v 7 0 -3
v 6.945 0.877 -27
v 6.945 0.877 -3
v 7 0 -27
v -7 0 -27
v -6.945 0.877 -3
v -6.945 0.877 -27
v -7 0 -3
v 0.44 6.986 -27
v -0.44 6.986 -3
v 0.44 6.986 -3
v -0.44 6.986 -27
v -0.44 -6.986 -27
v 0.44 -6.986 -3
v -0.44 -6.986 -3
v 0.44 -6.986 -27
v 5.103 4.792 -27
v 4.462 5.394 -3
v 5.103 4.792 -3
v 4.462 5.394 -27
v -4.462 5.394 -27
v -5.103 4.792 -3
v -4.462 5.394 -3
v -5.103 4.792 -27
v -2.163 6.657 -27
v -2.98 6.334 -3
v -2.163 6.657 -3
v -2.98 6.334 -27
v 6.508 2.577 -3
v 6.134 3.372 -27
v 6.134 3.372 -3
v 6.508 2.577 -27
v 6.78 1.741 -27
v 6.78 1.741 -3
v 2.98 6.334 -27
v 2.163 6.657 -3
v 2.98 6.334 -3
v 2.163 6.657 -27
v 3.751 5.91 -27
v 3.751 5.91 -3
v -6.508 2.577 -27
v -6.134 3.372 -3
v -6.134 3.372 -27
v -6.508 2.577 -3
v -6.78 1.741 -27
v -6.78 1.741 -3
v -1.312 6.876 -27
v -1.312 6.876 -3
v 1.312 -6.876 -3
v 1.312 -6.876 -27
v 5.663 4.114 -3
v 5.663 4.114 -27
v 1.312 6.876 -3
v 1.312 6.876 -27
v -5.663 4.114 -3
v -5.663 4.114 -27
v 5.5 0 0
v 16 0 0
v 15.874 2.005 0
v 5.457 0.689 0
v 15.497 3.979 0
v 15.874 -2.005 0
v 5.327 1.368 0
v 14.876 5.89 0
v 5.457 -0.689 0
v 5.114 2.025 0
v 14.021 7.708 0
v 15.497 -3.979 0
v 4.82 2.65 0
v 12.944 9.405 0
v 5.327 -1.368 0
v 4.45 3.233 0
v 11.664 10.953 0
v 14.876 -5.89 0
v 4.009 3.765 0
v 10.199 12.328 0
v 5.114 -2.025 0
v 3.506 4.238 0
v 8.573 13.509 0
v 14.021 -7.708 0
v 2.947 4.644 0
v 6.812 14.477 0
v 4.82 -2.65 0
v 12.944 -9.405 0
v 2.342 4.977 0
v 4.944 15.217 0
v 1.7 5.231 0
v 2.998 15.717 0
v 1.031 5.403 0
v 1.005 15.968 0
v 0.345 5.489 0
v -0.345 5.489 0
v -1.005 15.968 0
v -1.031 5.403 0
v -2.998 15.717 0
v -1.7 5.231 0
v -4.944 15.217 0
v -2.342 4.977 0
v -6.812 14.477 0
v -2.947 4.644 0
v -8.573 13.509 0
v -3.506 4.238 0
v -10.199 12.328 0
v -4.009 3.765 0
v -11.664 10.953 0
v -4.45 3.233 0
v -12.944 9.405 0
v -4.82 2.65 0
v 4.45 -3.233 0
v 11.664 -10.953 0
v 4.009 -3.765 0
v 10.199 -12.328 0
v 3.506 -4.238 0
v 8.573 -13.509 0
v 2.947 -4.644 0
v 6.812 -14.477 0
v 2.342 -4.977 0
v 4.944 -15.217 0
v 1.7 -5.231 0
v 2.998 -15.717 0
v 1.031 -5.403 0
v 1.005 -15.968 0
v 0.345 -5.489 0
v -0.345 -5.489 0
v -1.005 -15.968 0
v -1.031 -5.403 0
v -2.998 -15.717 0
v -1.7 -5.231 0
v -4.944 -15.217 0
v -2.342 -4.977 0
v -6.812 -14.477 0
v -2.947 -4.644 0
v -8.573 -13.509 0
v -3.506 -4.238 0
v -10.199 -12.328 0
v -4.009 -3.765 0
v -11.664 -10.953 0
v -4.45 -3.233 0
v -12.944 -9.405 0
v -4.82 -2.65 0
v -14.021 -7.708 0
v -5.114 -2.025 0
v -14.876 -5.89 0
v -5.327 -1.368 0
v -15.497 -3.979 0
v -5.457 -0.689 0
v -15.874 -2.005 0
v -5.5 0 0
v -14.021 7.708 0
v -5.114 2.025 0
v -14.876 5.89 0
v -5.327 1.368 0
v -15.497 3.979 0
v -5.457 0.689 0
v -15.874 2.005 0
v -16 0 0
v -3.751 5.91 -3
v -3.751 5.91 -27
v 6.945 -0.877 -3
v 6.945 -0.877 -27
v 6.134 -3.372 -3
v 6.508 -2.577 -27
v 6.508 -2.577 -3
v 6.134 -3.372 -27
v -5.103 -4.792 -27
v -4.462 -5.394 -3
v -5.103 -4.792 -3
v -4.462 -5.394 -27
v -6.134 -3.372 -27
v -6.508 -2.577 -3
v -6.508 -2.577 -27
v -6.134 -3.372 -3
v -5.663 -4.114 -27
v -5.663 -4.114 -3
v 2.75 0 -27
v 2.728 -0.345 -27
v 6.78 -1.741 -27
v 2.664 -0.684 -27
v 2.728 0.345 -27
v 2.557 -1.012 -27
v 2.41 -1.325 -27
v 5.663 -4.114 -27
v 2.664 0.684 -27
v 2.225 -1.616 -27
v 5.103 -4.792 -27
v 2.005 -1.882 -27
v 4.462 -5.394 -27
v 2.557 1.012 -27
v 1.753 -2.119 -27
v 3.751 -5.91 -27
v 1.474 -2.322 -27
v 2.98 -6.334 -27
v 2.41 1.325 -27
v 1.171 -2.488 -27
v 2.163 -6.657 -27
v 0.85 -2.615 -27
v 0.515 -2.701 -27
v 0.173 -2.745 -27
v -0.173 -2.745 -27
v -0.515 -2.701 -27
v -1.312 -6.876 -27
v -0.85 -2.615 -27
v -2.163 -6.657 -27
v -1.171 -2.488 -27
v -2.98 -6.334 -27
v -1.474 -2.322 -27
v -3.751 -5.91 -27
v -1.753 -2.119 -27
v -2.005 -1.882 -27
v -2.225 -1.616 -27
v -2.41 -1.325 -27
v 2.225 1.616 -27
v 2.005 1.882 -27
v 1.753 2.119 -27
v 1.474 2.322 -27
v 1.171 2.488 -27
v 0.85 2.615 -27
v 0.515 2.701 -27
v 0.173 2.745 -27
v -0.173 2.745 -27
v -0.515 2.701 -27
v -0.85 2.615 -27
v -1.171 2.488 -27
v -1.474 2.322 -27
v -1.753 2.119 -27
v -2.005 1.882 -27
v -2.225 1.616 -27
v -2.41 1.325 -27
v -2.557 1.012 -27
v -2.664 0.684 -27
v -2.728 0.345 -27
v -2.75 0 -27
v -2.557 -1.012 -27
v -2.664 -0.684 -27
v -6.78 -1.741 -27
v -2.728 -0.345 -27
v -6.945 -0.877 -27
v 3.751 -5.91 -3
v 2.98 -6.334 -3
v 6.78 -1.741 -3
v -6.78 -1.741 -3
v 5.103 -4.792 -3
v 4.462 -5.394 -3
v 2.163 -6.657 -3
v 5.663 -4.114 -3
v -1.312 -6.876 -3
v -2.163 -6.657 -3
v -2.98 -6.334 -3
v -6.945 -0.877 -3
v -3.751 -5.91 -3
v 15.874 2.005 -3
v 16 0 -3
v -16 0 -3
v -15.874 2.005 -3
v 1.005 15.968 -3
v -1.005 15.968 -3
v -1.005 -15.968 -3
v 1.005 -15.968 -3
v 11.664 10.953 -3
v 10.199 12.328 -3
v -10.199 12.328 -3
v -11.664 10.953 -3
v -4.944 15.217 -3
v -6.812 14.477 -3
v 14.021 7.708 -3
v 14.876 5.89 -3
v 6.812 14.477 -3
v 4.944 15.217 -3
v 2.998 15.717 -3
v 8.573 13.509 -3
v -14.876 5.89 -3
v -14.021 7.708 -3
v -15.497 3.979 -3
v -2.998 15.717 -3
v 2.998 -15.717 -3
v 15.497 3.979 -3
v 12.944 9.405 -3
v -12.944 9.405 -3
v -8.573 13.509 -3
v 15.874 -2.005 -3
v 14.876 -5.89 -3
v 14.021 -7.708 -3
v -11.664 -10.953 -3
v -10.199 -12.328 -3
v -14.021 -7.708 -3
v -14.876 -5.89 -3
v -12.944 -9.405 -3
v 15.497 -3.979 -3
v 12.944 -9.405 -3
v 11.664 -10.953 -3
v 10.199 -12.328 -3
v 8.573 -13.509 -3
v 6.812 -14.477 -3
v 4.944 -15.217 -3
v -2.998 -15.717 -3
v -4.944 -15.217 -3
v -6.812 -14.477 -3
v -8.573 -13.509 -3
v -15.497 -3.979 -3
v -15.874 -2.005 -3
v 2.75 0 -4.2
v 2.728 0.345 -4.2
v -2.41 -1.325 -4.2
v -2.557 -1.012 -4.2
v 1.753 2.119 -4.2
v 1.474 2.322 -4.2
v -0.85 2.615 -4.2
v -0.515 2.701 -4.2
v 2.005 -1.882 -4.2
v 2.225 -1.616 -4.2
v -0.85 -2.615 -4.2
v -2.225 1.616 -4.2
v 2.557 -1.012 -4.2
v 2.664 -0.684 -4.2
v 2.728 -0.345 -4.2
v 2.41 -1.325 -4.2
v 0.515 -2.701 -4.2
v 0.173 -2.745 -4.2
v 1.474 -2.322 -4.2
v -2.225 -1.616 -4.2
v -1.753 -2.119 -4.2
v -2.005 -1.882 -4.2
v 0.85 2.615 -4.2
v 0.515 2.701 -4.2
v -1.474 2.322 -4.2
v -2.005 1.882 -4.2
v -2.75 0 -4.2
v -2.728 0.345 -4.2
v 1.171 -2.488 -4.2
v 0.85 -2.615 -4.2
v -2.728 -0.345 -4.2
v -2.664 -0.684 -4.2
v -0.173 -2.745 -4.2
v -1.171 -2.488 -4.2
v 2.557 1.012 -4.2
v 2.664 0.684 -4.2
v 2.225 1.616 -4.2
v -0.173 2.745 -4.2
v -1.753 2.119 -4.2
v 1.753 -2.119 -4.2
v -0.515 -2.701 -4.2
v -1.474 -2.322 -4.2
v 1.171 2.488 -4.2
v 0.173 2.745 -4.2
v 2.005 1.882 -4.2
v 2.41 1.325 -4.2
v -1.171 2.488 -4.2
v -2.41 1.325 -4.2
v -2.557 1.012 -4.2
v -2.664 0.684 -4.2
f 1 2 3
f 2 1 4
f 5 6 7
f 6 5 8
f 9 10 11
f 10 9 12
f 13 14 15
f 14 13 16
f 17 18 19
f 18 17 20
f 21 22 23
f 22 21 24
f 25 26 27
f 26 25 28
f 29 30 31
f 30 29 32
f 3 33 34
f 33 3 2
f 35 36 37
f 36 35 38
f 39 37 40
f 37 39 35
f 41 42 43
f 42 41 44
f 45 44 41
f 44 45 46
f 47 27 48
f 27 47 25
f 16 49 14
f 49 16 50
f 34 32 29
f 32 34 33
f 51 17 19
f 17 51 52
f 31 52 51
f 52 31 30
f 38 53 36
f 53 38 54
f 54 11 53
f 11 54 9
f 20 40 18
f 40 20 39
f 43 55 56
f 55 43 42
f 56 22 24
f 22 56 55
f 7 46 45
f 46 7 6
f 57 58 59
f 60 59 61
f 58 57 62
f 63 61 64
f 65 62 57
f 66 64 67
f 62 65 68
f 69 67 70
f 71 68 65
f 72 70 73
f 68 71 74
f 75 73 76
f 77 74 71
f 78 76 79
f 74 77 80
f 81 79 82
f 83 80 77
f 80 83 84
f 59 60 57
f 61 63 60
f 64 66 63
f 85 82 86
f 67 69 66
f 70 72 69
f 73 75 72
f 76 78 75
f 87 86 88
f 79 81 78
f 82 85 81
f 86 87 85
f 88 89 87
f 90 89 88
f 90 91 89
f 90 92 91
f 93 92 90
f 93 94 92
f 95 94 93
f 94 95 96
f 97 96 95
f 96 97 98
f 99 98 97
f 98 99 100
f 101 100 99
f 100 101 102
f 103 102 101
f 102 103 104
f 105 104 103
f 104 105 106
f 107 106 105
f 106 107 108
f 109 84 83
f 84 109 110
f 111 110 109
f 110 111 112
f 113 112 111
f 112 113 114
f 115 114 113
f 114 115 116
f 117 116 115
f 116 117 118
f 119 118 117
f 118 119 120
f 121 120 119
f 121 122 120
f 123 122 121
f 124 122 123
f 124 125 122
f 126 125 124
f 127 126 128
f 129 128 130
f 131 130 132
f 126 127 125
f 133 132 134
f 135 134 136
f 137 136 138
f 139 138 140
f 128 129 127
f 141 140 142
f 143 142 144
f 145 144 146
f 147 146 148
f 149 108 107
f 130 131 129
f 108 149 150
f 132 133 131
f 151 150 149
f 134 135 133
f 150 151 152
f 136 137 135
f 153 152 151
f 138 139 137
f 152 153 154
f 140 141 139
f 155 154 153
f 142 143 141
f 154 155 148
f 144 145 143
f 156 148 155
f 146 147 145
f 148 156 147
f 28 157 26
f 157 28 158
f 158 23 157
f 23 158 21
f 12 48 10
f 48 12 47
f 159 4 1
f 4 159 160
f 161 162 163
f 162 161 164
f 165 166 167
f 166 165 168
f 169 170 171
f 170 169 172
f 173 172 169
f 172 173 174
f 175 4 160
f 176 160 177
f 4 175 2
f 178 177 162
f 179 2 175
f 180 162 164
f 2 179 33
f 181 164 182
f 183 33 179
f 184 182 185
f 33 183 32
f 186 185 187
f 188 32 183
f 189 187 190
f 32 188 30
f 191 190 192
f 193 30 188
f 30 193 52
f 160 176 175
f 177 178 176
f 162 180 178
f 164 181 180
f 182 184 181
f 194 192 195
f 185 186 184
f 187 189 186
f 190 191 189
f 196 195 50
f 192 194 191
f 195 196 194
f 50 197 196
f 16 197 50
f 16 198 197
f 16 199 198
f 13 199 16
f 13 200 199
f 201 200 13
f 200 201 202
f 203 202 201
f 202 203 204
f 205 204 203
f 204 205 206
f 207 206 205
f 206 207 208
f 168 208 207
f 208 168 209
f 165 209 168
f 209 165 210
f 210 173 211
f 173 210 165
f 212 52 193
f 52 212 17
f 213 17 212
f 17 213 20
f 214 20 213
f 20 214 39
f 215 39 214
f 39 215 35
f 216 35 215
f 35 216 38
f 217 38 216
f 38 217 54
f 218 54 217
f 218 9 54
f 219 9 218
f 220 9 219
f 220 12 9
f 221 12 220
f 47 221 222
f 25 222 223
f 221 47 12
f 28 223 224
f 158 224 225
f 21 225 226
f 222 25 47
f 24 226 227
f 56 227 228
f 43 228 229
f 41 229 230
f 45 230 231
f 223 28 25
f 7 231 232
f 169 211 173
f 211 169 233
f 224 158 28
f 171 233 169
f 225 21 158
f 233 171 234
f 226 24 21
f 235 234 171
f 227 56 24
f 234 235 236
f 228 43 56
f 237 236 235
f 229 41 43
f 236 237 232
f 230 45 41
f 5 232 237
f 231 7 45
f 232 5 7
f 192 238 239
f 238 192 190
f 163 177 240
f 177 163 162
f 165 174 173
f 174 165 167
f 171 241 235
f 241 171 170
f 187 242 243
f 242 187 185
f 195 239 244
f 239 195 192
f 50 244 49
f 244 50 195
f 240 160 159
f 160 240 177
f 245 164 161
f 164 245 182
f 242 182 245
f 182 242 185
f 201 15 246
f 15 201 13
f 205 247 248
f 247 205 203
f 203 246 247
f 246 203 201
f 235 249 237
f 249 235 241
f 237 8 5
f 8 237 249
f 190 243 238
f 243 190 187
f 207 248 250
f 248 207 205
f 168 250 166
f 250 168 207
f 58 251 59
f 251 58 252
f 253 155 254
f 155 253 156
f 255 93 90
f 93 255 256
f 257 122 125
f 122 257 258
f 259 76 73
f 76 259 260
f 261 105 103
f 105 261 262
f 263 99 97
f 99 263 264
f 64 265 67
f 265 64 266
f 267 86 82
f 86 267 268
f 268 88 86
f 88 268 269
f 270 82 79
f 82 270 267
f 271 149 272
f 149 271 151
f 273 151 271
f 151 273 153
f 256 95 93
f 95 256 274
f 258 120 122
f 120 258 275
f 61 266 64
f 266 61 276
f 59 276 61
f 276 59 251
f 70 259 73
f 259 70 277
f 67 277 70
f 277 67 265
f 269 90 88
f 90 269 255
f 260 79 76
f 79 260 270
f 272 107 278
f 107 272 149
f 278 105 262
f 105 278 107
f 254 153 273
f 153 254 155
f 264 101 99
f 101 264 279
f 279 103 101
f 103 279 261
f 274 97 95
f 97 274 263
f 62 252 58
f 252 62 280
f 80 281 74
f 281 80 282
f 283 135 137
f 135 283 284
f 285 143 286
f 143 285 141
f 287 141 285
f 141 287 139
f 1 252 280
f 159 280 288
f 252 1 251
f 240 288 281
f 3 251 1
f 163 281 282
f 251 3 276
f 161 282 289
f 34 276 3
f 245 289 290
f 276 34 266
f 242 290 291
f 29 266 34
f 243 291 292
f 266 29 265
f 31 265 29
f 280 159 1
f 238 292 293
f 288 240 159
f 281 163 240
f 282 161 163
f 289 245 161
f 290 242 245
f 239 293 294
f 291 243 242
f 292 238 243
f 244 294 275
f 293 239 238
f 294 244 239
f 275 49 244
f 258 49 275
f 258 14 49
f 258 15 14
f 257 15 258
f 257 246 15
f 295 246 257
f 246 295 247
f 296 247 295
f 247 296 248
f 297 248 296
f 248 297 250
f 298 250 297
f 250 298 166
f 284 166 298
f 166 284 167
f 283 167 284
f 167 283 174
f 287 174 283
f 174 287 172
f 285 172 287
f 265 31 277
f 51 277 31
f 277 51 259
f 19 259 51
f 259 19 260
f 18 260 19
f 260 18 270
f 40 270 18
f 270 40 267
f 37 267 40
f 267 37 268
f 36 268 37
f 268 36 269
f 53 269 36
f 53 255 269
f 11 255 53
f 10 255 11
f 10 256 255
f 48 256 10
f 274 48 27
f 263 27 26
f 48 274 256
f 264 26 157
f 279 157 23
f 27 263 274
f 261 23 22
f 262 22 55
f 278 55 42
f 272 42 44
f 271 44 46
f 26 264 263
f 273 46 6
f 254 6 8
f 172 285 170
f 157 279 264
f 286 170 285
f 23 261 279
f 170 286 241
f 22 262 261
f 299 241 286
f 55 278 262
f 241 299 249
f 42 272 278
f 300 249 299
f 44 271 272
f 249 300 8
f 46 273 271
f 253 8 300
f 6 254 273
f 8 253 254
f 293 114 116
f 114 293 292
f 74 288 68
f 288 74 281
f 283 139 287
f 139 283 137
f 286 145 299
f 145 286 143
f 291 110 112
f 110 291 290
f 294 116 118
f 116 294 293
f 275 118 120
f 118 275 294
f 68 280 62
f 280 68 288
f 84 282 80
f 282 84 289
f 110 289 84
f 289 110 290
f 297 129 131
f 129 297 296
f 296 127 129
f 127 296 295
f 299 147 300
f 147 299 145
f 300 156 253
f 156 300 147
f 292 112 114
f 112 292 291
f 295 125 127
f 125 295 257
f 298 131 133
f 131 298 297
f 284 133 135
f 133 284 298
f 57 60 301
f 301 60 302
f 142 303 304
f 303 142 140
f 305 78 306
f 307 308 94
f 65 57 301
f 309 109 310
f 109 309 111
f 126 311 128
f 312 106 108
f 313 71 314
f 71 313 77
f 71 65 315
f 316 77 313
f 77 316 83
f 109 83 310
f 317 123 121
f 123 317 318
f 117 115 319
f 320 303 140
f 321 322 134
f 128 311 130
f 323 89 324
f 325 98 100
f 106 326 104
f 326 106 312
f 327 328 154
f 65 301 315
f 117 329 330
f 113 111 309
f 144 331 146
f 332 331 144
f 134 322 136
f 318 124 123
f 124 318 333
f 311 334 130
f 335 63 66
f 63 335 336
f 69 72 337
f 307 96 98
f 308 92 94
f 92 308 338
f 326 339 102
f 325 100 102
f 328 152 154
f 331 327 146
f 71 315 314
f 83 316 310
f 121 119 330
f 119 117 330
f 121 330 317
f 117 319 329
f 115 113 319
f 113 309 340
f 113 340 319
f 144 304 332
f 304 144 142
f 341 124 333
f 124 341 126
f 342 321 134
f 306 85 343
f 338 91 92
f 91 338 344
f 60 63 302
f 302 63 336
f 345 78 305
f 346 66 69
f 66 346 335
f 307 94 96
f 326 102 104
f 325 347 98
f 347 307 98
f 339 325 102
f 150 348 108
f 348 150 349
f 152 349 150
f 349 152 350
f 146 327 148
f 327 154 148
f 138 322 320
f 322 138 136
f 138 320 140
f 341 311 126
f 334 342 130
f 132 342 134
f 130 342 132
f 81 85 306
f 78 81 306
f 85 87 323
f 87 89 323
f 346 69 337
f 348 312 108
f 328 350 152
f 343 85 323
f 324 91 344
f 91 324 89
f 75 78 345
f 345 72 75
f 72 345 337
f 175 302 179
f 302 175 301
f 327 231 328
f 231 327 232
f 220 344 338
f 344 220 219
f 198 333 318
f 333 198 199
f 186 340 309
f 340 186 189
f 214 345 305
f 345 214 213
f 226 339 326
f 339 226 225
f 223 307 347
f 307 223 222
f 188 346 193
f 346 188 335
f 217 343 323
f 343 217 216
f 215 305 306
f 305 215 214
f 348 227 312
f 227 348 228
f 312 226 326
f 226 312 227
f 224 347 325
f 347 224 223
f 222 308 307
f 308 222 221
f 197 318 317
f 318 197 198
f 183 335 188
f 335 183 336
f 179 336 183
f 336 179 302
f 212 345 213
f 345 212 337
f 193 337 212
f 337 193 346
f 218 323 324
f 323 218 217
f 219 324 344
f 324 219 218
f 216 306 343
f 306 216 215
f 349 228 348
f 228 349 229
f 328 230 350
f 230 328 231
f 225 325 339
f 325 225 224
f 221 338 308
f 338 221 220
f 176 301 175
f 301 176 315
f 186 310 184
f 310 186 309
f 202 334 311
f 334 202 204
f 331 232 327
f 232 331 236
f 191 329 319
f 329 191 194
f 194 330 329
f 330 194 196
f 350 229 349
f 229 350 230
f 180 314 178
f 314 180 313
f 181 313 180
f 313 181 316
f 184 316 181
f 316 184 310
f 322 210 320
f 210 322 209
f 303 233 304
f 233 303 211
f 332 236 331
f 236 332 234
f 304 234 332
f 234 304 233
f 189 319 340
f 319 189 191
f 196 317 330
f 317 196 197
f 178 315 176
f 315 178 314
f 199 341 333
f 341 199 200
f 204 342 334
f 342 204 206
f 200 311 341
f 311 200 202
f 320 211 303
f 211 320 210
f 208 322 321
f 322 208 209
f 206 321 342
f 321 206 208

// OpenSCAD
$fn = 50;


difference() {
	union() {
		translate(v = [0, 0, -27.0000000000]) {
			cylinder(h = 27, r = 7.0000000000);
		}
		translate(v = [0, 0, -3.0000000000]) {
			cylinder(h = 3, r = 16.0000000000);
		}
	}
	union() {
		translate(v = [0, 0, 0]) {
			rotate(a = [0, 0, 0]) {
				difference() {
					union() {
						#translate(v = [0, 0, -27.0000000000]) {
							cylinder(h = 27, r = 2.2500000000);
						}
						#translate(v = [0, 0, -4.2000000000]) {
							cylinder(h = 4.2000000000, r1 = 2.7500000000, r2 = 5.5000000000);
						}
						#translate(v = [0, 0, -27.0000000000]) {
							cylinder(h = 27, r = 2.7500000000);
						}
						#translate(v = [0, 0, -27.0000000000]) {
							cylinder(h = 27, r = 2.2500000000);
						}
					}
					union();
				}
			}
		}
	}
}
